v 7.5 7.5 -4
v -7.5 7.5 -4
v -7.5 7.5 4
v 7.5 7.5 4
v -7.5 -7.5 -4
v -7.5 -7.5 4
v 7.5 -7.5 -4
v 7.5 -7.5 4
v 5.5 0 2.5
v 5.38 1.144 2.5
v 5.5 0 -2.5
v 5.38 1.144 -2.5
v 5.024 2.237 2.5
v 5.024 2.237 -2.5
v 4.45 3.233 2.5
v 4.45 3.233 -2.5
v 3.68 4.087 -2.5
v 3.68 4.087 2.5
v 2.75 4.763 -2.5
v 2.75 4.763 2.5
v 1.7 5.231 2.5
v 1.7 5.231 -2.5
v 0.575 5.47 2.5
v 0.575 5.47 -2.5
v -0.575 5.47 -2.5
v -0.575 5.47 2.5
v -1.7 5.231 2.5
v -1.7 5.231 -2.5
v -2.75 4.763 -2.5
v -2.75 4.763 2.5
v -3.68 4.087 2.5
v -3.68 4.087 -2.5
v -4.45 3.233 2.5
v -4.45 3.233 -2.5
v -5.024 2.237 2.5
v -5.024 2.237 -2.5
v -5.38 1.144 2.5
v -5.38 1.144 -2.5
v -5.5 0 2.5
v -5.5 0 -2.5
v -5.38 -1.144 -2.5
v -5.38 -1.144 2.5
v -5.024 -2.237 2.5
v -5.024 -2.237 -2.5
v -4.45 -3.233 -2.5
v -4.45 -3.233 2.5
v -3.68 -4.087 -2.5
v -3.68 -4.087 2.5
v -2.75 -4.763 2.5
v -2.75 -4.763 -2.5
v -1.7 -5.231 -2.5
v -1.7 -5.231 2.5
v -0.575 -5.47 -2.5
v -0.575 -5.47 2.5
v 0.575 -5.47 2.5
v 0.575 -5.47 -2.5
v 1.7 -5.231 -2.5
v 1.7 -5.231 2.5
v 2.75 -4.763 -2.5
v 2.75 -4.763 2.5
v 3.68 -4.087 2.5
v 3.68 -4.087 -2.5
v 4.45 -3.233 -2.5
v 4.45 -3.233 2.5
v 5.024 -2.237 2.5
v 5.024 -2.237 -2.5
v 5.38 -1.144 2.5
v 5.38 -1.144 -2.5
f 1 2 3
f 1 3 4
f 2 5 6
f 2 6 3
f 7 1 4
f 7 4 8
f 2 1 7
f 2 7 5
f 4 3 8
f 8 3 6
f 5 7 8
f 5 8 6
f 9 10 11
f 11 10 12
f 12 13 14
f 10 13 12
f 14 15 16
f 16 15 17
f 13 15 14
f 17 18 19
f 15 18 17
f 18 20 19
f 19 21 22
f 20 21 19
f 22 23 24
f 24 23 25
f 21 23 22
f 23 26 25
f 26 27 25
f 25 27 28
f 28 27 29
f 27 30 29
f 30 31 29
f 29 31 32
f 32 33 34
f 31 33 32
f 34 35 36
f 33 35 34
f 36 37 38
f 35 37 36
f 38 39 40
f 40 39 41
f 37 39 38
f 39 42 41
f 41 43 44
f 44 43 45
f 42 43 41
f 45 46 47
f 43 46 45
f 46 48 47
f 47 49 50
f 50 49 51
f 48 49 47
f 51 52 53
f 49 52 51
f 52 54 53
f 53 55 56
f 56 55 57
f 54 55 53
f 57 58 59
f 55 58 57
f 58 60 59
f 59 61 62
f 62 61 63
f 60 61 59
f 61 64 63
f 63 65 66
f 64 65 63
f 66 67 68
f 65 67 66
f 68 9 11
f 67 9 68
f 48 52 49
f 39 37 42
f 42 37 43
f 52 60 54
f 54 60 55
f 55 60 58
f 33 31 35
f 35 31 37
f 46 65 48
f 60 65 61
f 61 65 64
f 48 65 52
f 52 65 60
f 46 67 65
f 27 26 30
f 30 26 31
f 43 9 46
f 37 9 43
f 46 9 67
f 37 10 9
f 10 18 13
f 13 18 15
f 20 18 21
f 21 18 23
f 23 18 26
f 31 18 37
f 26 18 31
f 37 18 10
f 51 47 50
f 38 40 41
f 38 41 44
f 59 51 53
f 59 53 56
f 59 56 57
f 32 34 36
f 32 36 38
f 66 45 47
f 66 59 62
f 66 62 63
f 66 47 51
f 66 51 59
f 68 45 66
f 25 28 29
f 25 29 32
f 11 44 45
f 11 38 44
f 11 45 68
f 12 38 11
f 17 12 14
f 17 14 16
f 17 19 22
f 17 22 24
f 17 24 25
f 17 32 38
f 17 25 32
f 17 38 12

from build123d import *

# Parameters (mm, degrees)
SKETCH_W     = 15
SKETCH_H     = 15
PAD_DEPTH    = 4
SKETCH001_R  = 5.5
POCKET_DEPTH = 2.5


with BuildPart() as part:
    # Sketch → Pad (new body, symmetric)
    with BuildSketch(Plane.XY):
        Rectangle(SKETCH_W, SKETCH_H)
    extrude(amount=PAD_DEPTH, both=True)

    # Sketch001 → Pocket (cut, symmetric)
    with BuildSketch(Plane.XY):
        Circle(SKETCH001_R)
    extrude(amount=POCKET_DEPTH, both=True, mode=Mode.SUBTRACT)


solid = part.part
